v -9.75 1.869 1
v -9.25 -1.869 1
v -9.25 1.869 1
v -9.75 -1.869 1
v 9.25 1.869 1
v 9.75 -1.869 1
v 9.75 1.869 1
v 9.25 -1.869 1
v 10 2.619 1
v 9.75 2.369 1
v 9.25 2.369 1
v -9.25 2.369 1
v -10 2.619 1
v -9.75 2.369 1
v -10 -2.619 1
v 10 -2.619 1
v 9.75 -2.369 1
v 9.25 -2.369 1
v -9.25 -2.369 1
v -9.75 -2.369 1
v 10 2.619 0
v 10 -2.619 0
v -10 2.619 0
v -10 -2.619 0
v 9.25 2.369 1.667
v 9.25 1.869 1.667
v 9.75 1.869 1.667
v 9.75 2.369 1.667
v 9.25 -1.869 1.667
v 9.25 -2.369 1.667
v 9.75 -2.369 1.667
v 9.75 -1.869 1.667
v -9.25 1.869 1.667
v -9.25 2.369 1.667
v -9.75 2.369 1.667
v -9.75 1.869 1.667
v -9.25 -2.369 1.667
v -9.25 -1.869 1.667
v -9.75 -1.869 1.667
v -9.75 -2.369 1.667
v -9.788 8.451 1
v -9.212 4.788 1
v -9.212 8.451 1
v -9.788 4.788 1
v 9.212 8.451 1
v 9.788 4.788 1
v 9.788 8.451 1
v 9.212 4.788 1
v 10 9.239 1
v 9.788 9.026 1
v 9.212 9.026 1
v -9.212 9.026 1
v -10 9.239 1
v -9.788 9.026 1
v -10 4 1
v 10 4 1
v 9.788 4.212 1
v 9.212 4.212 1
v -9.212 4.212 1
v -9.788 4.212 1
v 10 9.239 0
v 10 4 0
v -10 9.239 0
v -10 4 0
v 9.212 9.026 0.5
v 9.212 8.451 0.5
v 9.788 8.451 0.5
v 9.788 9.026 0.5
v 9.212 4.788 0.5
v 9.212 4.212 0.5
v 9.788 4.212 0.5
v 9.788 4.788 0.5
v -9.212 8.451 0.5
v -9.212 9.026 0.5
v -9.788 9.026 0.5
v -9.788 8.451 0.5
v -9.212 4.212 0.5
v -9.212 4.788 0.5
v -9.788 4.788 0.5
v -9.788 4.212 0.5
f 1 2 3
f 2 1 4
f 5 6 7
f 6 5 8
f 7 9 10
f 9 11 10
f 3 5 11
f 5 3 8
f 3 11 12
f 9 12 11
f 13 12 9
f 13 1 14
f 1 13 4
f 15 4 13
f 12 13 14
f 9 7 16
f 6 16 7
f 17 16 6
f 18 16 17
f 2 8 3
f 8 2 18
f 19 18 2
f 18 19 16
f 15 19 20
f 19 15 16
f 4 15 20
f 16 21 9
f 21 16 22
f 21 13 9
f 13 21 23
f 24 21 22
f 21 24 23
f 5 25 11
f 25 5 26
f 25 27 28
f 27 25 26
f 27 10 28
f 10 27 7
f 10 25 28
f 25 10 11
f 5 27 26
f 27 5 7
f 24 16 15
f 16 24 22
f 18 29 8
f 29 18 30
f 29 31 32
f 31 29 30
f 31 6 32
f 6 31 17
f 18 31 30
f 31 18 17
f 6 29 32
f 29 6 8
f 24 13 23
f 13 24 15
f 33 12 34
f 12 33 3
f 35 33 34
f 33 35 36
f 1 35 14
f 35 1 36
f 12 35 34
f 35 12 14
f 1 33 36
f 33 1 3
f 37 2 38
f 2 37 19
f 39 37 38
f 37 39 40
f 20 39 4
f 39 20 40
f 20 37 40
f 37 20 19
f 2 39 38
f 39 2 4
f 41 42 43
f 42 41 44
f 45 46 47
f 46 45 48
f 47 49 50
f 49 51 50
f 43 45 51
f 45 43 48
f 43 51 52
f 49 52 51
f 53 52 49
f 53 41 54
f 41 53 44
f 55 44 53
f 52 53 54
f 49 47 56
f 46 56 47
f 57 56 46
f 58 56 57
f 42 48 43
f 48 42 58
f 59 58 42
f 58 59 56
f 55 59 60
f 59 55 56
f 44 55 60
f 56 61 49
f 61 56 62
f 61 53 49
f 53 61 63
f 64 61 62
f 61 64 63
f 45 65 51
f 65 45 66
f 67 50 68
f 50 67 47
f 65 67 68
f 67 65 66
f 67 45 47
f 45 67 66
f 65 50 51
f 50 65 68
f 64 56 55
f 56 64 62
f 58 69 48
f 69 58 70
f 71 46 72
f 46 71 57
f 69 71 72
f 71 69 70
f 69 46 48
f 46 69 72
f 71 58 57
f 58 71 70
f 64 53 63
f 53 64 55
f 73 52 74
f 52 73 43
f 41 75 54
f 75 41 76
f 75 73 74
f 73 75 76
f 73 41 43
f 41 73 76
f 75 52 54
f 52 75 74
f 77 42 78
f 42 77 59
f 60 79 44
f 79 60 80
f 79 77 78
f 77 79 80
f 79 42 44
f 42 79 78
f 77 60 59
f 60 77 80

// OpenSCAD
// <  H  >     <  H  >
// +-----+< P >+-----+
// |     |     |     |
// +--------------+  |
// |              |  |
// |              |  |
// +--------------+  |
// |     |     |     |
// <       F      >
//                 <Q>
// Know H, P, I want to find F and Q
// H+H+P = F+Q
// Q = H/2
// 2*H+P = F+H/2
// 2*H-0.5*H = F-P
// 1.5H+P = F

penny_diam_cm = 1.905 * 1.1;
penny_thick_cm = .152 * 1.1;
w = 10;
l = penny_diam_cm * 2.5 / 2.0;
h = 1;
foot_w = 0.5;
foot_l = 0.5;
foot_h = 1.5*h + penny_thick_cm;
indent = 0;
q = 2;
enlarge = 2.0;

module foot(s) {
    scale([s,s,1])
    translate([-foot_w/2, -foot_l/2, 0])
    cube([foot_w,foot_l,foot_h]);
}

module quarter() {
    union() {
        cube([w,l,h]);
        translate([w-foot_w,l-foot_l,0]) foot(1.0);
    }
}

module pair() {
    quarter();
    mirror([0,1,0]) quarter();
}

pair();
mirror([1,0,0]) pair();



module quarter_hole() {
    difference() {
        cube([w,l,h]);
        translate([w-foot_w,l-foot_l,0.5*h]) foot(1.15);
    }
}

module pair_hole() {
    quarter_hole();
    mirror([0,1,0]) quarter_hole();
}

translate([0,l+4,0]) {
    pair_hole();
    mirror([1,0,0]) pair_hole();
}
